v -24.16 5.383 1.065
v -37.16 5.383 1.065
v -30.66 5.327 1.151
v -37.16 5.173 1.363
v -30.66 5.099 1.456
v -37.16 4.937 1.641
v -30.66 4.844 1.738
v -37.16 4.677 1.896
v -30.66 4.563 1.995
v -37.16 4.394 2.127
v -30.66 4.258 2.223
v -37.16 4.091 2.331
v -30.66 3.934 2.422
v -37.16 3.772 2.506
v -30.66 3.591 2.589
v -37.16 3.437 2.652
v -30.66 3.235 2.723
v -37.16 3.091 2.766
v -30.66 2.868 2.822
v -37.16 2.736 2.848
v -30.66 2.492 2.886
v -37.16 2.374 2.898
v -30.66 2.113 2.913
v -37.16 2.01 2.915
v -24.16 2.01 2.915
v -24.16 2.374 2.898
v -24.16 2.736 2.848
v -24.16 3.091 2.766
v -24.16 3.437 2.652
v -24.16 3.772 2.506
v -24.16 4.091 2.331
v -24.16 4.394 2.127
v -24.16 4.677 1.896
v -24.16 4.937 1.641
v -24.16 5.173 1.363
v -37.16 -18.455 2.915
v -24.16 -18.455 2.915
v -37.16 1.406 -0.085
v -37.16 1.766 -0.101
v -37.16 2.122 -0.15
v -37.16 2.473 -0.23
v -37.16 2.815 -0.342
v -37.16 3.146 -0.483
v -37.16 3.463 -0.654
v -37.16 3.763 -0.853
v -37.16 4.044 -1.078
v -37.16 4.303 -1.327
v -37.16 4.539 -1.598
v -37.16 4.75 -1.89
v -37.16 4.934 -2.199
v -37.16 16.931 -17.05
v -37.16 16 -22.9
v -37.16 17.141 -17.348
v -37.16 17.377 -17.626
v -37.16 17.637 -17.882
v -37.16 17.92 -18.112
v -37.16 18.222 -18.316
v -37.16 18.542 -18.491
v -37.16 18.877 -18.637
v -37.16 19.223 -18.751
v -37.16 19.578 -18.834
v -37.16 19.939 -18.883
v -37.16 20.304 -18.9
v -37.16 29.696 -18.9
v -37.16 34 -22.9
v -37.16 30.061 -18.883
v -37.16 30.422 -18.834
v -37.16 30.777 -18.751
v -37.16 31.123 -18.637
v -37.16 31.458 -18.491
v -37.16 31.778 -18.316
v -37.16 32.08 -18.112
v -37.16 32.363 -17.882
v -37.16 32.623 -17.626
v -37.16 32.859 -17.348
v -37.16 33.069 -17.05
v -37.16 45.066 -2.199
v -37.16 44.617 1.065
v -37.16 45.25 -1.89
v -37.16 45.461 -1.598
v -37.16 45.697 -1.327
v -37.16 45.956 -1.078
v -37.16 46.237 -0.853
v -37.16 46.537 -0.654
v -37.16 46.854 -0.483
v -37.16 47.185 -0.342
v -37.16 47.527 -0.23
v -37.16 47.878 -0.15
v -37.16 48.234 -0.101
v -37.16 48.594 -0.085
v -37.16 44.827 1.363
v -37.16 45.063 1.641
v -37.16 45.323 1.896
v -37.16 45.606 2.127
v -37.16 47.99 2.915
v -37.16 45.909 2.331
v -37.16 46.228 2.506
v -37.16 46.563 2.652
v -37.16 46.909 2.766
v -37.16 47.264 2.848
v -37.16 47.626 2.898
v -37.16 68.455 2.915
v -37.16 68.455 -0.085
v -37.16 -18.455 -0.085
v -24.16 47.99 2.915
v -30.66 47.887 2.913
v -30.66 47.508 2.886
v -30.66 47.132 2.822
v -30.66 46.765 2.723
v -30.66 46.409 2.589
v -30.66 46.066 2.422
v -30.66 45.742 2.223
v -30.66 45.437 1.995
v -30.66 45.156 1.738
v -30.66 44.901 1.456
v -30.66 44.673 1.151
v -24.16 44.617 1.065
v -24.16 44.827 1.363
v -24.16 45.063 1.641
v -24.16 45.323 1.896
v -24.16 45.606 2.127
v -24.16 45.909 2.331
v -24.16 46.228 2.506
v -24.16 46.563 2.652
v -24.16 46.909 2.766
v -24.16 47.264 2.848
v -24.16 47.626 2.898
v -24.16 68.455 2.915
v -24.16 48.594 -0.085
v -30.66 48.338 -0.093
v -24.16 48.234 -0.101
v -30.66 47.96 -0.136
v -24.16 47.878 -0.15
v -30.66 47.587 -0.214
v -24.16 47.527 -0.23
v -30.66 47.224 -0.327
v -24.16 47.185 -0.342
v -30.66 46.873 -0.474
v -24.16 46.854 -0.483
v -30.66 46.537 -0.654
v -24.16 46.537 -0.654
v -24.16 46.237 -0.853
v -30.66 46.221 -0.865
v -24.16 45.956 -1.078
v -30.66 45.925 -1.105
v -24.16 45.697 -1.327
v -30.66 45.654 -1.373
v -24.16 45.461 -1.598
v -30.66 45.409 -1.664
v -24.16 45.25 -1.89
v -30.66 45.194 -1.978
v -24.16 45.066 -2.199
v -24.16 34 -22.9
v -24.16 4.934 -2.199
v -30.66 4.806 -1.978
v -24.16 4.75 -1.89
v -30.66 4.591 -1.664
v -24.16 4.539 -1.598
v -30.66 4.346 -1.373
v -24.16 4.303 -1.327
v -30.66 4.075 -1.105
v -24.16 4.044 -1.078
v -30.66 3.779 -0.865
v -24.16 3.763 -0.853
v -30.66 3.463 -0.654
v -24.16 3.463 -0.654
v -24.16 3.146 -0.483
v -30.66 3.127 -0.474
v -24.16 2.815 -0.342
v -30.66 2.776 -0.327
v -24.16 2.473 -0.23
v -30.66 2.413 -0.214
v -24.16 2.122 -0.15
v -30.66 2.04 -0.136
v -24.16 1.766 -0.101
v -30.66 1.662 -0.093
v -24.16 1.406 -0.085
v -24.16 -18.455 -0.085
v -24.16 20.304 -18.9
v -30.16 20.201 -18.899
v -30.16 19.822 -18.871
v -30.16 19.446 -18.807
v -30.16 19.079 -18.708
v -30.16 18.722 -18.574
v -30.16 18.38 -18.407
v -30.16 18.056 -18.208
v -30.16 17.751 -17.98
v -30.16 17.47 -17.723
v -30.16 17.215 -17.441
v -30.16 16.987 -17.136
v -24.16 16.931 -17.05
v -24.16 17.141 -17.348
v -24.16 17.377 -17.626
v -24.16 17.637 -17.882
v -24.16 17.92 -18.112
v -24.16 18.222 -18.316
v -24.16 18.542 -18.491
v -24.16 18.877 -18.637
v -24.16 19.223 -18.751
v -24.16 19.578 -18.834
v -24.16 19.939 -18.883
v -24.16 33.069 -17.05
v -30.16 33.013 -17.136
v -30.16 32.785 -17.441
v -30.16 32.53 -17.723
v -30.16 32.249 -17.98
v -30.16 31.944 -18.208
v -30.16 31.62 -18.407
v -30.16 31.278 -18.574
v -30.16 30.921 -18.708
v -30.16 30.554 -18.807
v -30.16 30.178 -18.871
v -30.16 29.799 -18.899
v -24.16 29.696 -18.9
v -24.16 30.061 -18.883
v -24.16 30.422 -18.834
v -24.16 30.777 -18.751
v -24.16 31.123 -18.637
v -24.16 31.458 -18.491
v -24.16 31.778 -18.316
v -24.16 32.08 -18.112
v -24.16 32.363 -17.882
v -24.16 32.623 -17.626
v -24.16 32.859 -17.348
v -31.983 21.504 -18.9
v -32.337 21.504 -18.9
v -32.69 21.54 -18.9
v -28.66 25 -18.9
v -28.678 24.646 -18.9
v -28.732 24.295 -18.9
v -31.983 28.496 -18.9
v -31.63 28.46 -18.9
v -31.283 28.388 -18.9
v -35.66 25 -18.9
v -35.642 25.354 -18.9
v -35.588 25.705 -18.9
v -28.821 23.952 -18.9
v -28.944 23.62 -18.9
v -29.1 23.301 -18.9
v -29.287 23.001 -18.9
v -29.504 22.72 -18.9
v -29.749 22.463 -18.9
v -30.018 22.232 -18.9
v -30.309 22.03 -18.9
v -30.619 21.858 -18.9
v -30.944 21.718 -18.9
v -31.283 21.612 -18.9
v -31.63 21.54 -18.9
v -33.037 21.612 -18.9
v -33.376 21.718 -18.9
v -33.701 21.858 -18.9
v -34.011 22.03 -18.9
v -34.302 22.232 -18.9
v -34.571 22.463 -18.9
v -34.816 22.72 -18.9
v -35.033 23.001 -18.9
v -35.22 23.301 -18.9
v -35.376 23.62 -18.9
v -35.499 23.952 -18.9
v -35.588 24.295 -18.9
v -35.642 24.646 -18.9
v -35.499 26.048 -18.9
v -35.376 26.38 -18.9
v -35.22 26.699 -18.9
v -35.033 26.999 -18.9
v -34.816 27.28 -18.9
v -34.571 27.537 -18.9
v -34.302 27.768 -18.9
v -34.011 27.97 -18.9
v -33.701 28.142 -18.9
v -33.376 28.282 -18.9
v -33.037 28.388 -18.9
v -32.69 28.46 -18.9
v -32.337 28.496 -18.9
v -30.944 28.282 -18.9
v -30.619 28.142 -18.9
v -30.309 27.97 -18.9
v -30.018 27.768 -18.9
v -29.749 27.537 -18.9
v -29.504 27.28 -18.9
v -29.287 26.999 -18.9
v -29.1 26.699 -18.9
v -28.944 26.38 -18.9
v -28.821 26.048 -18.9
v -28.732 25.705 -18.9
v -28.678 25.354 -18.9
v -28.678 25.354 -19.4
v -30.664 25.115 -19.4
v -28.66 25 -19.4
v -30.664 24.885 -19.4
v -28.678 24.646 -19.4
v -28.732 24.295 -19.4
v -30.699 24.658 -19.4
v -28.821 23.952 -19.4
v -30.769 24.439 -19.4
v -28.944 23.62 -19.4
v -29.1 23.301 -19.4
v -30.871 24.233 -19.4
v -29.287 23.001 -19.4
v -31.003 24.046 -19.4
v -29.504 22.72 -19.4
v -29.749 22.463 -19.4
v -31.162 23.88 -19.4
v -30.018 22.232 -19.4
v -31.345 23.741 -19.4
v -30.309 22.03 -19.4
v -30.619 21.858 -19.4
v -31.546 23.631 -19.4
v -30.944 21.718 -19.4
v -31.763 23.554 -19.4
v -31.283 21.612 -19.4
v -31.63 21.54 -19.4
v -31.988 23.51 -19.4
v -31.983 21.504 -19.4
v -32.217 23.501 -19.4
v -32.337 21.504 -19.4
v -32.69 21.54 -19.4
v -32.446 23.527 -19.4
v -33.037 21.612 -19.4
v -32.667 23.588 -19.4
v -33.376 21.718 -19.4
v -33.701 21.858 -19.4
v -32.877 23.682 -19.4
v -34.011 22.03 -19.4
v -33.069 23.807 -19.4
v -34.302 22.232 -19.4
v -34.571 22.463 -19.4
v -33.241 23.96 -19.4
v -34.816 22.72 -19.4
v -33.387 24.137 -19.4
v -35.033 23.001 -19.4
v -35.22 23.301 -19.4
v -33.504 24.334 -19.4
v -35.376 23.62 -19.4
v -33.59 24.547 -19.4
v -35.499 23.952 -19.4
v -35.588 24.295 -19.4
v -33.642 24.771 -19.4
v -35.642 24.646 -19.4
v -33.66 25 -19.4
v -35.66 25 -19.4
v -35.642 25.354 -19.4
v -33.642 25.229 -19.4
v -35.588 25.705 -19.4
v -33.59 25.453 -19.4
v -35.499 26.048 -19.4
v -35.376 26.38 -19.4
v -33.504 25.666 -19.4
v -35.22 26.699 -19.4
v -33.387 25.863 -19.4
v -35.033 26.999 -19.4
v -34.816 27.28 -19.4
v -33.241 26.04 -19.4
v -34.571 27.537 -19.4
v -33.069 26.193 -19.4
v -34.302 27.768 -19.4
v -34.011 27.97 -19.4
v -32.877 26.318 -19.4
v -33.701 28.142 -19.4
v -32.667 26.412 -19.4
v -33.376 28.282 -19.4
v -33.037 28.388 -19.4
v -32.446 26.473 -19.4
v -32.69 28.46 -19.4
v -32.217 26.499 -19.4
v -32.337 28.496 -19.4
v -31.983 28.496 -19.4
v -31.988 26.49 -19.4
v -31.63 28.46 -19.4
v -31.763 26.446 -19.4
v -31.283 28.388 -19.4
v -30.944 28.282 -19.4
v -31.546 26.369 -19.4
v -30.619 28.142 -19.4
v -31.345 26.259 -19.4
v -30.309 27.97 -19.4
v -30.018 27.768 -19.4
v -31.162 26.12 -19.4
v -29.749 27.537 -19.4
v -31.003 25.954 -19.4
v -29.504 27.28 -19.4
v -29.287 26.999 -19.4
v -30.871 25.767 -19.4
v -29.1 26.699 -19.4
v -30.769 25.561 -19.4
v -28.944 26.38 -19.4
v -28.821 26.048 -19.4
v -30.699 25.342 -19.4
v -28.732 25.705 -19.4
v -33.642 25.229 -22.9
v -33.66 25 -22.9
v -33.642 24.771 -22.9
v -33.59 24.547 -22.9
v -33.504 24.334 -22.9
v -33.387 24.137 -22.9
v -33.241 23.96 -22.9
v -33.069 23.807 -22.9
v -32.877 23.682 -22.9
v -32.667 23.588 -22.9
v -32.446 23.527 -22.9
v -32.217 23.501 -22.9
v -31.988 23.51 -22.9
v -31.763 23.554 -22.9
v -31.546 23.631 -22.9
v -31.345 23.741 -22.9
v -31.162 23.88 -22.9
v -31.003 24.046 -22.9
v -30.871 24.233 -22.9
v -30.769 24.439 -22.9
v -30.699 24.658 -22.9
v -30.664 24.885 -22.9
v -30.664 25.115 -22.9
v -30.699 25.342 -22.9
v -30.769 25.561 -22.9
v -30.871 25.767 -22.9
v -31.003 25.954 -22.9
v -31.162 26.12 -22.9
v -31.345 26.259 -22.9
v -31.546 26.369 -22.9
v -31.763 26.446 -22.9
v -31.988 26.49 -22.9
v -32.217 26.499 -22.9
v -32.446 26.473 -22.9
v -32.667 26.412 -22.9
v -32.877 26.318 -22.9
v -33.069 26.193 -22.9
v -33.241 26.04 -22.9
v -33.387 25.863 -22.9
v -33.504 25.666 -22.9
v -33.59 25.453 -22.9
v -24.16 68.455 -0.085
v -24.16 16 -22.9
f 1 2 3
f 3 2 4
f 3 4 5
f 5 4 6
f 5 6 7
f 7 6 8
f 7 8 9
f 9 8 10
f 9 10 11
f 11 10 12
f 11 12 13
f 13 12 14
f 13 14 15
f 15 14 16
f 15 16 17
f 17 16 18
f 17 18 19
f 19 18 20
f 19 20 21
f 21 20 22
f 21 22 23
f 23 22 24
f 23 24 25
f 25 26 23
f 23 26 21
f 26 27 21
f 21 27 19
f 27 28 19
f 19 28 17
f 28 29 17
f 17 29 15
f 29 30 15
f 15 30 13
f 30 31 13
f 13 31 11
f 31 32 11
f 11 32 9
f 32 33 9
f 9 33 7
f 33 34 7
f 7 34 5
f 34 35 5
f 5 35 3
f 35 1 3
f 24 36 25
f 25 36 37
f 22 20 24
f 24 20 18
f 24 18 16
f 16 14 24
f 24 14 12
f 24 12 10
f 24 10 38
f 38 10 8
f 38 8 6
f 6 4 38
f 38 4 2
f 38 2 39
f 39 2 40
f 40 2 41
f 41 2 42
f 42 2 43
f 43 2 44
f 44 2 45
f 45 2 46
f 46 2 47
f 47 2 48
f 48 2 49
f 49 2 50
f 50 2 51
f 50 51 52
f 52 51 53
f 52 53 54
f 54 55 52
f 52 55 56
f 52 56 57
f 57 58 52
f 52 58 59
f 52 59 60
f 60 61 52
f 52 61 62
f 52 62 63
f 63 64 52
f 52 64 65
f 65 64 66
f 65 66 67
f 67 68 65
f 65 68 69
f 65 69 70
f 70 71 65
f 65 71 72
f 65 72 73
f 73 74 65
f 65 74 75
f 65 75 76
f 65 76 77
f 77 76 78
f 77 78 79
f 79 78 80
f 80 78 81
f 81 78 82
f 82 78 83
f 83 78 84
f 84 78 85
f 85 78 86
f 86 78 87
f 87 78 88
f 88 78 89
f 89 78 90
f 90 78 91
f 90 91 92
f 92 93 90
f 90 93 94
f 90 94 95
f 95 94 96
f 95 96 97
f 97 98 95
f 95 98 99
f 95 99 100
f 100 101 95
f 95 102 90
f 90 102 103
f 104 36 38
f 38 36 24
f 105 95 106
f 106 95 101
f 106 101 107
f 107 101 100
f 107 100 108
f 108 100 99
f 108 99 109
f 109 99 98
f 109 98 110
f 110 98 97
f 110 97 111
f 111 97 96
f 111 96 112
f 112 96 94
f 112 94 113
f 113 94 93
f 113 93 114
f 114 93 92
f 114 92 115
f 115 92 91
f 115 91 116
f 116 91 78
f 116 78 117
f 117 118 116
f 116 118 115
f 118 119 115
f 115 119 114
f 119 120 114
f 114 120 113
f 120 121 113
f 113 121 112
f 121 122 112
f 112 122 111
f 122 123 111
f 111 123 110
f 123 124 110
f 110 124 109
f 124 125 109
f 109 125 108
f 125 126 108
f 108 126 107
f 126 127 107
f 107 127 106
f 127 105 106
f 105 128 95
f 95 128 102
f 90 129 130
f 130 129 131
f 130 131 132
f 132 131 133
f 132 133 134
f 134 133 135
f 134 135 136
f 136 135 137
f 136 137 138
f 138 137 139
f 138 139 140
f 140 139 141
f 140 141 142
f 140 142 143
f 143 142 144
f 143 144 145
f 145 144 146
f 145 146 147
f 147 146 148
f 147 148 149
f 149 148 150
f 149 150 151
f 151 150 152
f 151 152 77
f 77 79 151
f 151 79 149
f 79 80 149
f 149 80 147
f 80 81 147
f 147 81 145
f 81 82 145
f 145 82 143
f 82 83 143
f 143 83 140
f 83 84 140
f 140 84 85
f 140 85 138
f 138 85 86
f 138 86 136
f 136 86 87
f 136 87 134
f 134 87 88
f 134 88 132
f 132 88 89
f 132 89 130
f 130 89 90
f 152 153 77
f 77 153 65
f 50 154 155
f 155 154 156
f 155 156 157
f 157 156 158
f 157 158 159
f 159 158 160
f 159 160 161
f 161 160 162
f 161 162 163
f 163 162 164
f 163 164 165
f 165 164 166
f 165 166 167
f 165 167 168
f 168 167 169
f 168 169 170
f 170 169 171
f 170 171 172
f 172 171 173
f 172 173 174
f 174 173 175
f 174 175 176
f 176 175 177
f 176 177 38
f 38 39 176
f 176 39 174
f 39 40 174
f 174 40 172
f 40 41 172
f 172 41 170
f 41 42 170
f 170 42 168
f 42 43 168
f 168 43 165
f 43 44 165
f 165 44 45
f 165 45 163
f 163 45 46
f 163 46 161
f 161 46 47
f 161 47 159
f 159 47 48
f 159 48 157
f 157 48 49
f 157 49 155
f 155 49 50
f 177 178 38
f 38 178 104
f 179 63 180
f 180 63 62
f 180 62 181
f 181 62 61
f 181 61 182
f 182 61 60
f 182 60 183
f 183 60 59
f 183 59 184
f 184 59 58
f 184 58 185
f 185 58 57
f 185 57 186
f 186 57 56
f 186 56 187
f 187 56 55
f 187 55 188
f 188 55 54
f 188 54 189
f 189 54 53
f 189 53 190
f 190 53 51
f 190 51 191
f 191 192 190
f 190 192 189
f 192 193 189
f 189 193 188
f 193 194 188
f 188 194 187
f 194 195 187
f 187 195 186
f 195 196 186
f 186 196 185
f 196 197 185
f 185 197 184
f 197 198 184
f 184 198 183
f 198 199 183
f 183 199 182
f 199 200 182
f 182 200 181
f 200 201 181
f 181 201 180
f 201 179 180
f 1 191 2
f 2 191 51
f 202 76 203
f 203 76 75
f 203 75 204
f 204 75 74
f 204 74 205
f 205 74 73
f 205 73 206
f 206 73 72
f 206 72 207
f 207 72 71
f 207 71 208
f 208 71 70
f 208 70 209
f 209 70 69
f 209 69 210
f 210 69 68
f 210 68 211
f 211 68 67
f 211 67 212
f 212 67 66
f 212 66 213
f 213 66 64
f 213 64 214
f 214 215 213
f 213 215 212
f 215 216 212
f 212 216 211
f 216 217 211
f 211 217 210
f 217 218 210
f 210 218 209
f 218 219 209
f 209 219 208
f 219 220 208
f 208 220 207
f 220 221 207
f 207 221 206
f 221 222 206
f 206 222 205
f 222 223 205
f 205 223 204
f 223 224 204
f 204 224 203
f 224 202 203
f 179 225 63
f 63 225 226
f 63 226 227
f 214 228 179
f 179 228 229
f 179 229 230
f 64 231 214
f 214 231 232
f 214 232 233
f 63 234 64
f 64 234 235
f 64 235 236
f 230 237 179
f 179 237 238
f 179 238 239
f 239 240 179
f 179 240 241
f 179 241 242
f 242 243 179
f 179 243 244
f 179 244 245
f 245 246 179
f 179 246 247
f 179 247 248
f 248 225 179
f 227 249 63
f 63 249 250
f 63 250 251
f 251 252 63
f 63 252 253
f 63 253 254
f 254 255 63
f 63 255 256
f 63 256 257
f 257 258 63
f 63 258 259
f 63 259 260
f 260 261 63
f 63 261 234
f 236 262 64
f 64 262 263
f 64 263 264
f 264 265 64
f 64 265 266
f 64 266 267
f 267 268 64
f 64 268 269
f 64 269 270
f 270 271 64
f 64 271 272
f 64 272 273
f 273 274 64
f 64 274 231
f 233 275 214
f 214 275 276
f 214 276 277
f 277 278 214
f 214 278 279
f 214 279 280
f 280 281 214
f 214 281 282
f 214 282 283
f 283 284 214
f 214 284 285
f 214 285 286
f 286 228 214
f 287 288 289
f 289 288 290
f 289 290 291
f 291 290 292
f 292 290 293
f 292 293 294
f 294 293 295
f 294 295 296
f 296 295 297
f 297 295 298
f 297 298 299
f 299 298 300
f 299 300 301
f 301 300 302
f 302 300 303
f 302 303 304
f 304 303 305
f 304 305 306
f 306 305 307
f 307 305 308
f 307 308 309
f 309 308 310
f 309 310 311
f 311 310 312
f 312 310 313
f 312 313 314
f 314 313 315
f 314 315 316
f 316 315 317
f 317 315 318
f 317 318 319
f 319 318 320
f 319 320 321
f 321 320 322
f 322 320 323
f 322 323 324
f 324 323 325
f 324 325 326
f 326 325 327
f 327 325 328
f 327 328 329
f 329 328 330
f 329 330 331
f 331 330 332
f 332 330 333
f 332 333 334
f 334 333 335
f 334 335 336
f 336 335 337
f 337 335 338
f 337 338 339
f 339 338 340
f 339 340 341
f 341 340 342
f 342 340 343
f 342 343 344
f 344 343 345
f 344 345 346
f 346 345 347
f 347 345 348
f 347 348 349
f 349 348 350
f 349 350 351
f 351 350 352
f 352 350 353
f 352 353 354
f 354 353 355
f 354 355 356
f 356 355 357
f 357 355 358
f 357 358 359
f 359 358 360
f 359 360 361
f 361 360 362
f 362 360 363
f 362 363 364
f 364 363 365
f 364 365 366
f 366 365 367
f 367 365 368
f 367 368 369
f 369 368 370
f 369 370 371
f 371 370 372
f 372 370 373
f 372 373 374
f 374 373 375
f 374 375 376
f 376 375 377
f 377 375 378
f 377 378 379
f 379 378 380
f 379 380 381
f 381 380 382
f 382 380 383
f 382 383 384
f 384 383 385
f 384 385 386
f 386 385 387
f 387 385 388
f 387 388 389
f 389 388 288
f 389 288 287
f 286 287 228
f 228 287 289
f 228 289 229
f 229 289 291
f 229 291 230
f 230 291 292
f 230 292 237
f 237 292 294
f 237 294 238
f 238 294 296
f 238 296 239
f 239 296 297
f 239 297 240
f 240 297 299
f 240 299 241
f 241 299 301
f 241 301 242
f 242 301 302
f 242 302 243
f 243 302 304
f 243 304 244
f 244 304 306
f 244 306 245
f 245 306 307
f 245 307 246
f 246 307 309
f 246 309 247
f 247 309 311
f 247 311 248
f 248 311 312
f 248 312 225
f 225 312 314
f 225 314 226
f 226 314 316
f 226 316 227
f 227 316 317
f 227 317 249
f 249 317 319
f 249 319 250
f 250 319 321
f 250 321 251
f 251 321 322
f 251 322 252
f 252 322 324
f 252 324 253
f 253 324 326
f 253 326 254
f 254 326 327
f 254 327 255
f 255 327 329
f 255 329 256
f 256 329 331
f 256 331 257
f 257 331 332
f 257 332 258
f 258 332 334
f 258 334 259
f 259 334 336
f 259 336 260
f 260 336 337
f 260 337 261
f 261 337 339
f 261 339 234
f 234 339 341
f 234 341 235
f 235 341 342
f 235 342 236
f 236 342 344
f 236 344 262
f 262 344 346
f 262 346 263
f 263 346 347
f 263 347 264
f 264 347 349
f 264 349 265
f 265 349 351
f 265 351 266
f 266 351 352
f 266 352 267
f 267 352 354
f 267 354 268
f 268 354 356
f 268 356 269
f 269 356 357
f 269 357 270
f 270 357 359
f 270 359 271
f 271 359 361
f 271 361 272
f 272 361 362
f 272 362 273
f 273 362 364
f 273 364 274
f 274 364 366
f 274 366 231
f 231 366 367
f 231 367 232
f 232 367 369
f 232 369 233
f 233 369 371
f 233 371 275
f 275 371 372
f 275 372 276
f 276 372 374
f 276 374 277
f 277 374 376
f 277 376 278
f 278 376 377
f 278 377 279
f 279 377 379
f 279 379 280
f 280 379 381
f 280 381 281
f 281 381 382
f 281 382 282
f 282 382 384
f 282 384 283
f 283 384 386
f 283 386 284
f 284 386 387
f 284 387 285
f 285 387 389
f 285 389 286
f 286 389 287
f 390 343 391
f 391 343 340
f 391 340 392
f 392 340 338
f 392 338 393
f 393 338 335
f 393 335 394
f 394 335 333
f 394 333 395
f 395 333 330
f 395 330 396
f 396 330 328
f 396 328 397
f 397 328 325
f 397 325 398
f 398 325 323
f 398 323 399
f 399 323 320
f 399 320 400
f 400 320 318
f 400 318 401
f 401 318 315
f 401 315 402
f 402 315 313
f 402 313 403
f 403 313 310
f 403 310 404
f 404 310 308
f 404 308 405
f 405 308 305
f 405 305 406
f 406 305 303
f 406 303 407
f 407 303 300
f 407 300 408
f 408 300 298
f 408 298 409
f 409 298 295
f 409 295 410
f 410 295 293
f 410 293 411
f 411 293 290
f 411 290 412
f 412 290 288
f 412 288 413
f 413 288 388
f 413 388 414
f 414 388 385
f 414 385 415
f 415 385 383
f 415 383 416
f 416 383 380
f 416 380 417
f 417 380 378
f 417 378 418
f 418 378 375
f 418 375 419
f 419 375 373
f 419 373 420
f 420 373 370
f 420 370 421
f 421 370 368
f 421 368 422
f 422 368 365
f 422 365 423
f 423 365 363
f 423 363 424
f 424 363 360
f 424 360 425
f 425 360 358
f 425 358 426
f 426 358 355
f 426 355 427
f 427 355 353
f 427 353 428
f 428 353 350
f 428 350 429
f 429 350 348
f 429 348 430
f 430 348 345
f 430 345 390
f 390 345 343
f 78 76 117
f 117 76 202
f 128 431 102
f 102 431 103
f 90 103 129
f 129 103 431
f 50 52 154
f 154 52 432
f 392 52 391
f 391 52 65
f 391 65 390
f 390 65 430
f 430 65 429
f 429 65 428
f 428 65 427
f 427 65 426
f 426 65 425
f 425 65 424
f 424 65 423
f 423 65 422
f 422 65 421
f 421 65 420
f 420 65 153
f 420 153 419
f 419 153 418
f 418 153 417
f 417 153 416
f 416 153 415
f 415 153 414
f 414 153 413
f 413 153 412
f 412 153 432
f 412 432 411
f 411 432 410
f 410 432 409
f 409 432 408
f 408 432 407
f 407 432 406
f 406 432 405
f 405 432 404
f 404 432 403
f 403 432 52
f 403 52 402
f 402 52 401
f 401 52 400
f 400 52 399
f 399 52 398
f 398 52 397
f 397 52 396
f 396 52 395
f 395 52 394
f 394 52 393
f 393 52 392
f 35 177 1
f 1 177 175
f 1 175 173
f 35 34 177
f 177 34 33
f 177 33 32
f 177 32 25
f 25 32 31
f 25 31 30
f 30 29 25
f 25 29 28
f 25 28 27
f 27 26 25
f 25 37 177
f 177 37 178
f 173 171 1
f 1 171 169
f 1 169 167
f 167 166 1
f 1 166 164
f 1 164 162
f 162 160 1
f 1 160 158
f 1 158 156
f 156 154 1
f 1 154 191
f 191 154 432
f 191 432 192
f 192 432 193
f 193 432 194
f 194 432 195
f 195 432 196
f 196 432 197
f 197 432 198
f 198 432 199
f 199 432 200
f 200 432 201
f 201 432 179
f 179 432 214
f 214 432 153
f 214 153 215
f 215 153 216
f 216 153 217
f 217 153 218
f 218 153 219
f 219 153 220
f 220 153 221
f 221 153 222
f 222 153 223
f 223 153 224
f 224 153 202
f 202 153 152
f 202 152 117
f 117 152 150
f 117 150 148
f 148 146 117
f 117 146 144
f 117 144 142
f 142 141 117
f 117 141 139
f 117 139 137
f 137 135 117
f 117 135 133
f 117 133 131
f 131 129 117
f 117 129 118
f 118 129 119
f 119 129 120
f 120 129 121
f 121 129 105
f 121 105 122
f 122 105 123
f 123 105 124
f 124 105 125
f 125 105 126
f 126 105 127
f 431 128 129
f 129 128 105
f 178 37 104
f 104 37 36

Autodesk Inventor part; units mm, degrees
ref_plane "YZ Plane" through (0, 0, 0) normal (1, 0, 0) x (0, 1, 0)
ref_plane "XZ Plane" through (0, 0, 0) normal (0, 1, 0) x (-1, 0, 0)
ref_plane "XY Plane" through (0, 0, 0) normal (0, 0, 1) x (1, 0, 0)
ref_plane "Work Plane1" through (0, 0, 0) normal (0, 0, 1) x (1, 0, 0)
sketch "Sketch1" plane through (0, 0, 0) normal (0, 0, 1) x (1, 0, 0)
  circle A0 centre (-32.16, 25) radius 1.5 projected
  line L0 (-46.16, -18.25) -> (4.84, -18.25) projected
  line L1 (4.84, -18.25) -> (4.84, 0.75) projected
  line L2 (4.84, 0.75) -> (-46.16, 0.75) projected
  line L3 (-46.16, -18.25) -> (-46.16, 0.75) projected
  line L4 (4.84, 68.25) -> (-46.16, 68.25) projected
  line L5 (-46.16, 68.25) -> (-46.16, 49.25) projected
  line L6 (-46.16, 49.25) -> (4.84, 49.25) projected
  line L7 (4.84, 68.25) -> (4.84, 49.25) projected
  line L8 (-37.16, 68.25) -> (-27.16, 68.25)
  line L9 (-27.16, 68.25) -> (-27.16, -18.25)
  line L10 (-27.16, -18.25) -> (-37.16, -18.25)
  line L11 (-37.16, -18.25) -> (-37.16, 68.25)
  line L12 (-37.16, 68.25) -> (-27.16, -18.25) construction
  line L13 (-27.16, 68.25) -> (-37.16, -18.25) construction
  point P0 (0, 0)
  dimension "d0" = 10
ref_plane "Work Plane3" through (-27.16, 68.25, 0) normal (1, 0, 0) x (0, -1, 0)
ref_plane "Work Plane2" through (4.84, 54, -29.8) normal (1, 0, 0) x (0, -1, 0)
sketch "Sketch2" plane through (-27.16, 68.25, 0) normal (1, 0, 0) x (0, -1, 0)
  line L0 (58.4964, 22.9) -> (28.0036, 22.9) projected
  line L1 (65, 22.8) -> (65, 15.8) projected
  line L2 (86.7048, 0.0852) -> (64.4463, 0.0852)
  line L3 (64.4463, 0.0852) -> (64.4463, -2.9148)
  line L4 (64.4463, -2.9148) -> (86.7048, -2.9148)
  line L5 (86.7048, -2.9148) -> (86.7048, 0.0852)
  line L6 (43.25, 22.9) -> (52.25, 22.9)
  line L7 (52.25, 22.9) -> (52.25, 18.9)
  line L8 (52.25, 18.9) -> (43.25, 18.9)
  line L9 (43.25, 18.9) -> (43.25, 22.9)
  line L10 (64.4463, 0.0852) -> (52.25, 22.9)
  line L11 (50.14, 18.9) -> (64.0461, -2.9148)
  line L12 (64.0461, -2.9148) -> (64.4463, -2.9148)
  point P0 (68.25, 0)
  dimension "d1" = 3
  dimension "d2" = 9
  dimension "d3" = 4
extrude "Extrusion1" add sketch "Sketch2" against normal blind 10
mirror "Mirror1" about plane through (-27.16, 25, -18.9) normal (0, 1, 0) of "Extrusion1"
sketch "Sketch3" plane through (-37.16, 18.11, -18.9) normal (0, 0, 1) x (1, 0, 0)
  circle A0 centre (5, 6.89) radius 1.5 projected
  point P0 (37.16, -18.11)
hole "Hole1" at (-32.16, 25, -18.9) direction (0, 0, -1) diameter 3 end through all counterbore diameter 7 counterbore depth 0.5
move faces "Move1" translate (3, 0, 0) faces at (-27.16, 37.3621, -13.9617)
fillet "Fillet1" radius 4 6 edges at (-30.66, 31.89, -18.9) (-30.66, 18.11, -18.9) (-30.66, 3.8037, -0.0852) (-30.66, 46.1963, -0.0852) (-30.66, 45.7961, 2.9148) (-30.66, 4.2039, 2.9148)
properties part number "servo_bracket_holder"
